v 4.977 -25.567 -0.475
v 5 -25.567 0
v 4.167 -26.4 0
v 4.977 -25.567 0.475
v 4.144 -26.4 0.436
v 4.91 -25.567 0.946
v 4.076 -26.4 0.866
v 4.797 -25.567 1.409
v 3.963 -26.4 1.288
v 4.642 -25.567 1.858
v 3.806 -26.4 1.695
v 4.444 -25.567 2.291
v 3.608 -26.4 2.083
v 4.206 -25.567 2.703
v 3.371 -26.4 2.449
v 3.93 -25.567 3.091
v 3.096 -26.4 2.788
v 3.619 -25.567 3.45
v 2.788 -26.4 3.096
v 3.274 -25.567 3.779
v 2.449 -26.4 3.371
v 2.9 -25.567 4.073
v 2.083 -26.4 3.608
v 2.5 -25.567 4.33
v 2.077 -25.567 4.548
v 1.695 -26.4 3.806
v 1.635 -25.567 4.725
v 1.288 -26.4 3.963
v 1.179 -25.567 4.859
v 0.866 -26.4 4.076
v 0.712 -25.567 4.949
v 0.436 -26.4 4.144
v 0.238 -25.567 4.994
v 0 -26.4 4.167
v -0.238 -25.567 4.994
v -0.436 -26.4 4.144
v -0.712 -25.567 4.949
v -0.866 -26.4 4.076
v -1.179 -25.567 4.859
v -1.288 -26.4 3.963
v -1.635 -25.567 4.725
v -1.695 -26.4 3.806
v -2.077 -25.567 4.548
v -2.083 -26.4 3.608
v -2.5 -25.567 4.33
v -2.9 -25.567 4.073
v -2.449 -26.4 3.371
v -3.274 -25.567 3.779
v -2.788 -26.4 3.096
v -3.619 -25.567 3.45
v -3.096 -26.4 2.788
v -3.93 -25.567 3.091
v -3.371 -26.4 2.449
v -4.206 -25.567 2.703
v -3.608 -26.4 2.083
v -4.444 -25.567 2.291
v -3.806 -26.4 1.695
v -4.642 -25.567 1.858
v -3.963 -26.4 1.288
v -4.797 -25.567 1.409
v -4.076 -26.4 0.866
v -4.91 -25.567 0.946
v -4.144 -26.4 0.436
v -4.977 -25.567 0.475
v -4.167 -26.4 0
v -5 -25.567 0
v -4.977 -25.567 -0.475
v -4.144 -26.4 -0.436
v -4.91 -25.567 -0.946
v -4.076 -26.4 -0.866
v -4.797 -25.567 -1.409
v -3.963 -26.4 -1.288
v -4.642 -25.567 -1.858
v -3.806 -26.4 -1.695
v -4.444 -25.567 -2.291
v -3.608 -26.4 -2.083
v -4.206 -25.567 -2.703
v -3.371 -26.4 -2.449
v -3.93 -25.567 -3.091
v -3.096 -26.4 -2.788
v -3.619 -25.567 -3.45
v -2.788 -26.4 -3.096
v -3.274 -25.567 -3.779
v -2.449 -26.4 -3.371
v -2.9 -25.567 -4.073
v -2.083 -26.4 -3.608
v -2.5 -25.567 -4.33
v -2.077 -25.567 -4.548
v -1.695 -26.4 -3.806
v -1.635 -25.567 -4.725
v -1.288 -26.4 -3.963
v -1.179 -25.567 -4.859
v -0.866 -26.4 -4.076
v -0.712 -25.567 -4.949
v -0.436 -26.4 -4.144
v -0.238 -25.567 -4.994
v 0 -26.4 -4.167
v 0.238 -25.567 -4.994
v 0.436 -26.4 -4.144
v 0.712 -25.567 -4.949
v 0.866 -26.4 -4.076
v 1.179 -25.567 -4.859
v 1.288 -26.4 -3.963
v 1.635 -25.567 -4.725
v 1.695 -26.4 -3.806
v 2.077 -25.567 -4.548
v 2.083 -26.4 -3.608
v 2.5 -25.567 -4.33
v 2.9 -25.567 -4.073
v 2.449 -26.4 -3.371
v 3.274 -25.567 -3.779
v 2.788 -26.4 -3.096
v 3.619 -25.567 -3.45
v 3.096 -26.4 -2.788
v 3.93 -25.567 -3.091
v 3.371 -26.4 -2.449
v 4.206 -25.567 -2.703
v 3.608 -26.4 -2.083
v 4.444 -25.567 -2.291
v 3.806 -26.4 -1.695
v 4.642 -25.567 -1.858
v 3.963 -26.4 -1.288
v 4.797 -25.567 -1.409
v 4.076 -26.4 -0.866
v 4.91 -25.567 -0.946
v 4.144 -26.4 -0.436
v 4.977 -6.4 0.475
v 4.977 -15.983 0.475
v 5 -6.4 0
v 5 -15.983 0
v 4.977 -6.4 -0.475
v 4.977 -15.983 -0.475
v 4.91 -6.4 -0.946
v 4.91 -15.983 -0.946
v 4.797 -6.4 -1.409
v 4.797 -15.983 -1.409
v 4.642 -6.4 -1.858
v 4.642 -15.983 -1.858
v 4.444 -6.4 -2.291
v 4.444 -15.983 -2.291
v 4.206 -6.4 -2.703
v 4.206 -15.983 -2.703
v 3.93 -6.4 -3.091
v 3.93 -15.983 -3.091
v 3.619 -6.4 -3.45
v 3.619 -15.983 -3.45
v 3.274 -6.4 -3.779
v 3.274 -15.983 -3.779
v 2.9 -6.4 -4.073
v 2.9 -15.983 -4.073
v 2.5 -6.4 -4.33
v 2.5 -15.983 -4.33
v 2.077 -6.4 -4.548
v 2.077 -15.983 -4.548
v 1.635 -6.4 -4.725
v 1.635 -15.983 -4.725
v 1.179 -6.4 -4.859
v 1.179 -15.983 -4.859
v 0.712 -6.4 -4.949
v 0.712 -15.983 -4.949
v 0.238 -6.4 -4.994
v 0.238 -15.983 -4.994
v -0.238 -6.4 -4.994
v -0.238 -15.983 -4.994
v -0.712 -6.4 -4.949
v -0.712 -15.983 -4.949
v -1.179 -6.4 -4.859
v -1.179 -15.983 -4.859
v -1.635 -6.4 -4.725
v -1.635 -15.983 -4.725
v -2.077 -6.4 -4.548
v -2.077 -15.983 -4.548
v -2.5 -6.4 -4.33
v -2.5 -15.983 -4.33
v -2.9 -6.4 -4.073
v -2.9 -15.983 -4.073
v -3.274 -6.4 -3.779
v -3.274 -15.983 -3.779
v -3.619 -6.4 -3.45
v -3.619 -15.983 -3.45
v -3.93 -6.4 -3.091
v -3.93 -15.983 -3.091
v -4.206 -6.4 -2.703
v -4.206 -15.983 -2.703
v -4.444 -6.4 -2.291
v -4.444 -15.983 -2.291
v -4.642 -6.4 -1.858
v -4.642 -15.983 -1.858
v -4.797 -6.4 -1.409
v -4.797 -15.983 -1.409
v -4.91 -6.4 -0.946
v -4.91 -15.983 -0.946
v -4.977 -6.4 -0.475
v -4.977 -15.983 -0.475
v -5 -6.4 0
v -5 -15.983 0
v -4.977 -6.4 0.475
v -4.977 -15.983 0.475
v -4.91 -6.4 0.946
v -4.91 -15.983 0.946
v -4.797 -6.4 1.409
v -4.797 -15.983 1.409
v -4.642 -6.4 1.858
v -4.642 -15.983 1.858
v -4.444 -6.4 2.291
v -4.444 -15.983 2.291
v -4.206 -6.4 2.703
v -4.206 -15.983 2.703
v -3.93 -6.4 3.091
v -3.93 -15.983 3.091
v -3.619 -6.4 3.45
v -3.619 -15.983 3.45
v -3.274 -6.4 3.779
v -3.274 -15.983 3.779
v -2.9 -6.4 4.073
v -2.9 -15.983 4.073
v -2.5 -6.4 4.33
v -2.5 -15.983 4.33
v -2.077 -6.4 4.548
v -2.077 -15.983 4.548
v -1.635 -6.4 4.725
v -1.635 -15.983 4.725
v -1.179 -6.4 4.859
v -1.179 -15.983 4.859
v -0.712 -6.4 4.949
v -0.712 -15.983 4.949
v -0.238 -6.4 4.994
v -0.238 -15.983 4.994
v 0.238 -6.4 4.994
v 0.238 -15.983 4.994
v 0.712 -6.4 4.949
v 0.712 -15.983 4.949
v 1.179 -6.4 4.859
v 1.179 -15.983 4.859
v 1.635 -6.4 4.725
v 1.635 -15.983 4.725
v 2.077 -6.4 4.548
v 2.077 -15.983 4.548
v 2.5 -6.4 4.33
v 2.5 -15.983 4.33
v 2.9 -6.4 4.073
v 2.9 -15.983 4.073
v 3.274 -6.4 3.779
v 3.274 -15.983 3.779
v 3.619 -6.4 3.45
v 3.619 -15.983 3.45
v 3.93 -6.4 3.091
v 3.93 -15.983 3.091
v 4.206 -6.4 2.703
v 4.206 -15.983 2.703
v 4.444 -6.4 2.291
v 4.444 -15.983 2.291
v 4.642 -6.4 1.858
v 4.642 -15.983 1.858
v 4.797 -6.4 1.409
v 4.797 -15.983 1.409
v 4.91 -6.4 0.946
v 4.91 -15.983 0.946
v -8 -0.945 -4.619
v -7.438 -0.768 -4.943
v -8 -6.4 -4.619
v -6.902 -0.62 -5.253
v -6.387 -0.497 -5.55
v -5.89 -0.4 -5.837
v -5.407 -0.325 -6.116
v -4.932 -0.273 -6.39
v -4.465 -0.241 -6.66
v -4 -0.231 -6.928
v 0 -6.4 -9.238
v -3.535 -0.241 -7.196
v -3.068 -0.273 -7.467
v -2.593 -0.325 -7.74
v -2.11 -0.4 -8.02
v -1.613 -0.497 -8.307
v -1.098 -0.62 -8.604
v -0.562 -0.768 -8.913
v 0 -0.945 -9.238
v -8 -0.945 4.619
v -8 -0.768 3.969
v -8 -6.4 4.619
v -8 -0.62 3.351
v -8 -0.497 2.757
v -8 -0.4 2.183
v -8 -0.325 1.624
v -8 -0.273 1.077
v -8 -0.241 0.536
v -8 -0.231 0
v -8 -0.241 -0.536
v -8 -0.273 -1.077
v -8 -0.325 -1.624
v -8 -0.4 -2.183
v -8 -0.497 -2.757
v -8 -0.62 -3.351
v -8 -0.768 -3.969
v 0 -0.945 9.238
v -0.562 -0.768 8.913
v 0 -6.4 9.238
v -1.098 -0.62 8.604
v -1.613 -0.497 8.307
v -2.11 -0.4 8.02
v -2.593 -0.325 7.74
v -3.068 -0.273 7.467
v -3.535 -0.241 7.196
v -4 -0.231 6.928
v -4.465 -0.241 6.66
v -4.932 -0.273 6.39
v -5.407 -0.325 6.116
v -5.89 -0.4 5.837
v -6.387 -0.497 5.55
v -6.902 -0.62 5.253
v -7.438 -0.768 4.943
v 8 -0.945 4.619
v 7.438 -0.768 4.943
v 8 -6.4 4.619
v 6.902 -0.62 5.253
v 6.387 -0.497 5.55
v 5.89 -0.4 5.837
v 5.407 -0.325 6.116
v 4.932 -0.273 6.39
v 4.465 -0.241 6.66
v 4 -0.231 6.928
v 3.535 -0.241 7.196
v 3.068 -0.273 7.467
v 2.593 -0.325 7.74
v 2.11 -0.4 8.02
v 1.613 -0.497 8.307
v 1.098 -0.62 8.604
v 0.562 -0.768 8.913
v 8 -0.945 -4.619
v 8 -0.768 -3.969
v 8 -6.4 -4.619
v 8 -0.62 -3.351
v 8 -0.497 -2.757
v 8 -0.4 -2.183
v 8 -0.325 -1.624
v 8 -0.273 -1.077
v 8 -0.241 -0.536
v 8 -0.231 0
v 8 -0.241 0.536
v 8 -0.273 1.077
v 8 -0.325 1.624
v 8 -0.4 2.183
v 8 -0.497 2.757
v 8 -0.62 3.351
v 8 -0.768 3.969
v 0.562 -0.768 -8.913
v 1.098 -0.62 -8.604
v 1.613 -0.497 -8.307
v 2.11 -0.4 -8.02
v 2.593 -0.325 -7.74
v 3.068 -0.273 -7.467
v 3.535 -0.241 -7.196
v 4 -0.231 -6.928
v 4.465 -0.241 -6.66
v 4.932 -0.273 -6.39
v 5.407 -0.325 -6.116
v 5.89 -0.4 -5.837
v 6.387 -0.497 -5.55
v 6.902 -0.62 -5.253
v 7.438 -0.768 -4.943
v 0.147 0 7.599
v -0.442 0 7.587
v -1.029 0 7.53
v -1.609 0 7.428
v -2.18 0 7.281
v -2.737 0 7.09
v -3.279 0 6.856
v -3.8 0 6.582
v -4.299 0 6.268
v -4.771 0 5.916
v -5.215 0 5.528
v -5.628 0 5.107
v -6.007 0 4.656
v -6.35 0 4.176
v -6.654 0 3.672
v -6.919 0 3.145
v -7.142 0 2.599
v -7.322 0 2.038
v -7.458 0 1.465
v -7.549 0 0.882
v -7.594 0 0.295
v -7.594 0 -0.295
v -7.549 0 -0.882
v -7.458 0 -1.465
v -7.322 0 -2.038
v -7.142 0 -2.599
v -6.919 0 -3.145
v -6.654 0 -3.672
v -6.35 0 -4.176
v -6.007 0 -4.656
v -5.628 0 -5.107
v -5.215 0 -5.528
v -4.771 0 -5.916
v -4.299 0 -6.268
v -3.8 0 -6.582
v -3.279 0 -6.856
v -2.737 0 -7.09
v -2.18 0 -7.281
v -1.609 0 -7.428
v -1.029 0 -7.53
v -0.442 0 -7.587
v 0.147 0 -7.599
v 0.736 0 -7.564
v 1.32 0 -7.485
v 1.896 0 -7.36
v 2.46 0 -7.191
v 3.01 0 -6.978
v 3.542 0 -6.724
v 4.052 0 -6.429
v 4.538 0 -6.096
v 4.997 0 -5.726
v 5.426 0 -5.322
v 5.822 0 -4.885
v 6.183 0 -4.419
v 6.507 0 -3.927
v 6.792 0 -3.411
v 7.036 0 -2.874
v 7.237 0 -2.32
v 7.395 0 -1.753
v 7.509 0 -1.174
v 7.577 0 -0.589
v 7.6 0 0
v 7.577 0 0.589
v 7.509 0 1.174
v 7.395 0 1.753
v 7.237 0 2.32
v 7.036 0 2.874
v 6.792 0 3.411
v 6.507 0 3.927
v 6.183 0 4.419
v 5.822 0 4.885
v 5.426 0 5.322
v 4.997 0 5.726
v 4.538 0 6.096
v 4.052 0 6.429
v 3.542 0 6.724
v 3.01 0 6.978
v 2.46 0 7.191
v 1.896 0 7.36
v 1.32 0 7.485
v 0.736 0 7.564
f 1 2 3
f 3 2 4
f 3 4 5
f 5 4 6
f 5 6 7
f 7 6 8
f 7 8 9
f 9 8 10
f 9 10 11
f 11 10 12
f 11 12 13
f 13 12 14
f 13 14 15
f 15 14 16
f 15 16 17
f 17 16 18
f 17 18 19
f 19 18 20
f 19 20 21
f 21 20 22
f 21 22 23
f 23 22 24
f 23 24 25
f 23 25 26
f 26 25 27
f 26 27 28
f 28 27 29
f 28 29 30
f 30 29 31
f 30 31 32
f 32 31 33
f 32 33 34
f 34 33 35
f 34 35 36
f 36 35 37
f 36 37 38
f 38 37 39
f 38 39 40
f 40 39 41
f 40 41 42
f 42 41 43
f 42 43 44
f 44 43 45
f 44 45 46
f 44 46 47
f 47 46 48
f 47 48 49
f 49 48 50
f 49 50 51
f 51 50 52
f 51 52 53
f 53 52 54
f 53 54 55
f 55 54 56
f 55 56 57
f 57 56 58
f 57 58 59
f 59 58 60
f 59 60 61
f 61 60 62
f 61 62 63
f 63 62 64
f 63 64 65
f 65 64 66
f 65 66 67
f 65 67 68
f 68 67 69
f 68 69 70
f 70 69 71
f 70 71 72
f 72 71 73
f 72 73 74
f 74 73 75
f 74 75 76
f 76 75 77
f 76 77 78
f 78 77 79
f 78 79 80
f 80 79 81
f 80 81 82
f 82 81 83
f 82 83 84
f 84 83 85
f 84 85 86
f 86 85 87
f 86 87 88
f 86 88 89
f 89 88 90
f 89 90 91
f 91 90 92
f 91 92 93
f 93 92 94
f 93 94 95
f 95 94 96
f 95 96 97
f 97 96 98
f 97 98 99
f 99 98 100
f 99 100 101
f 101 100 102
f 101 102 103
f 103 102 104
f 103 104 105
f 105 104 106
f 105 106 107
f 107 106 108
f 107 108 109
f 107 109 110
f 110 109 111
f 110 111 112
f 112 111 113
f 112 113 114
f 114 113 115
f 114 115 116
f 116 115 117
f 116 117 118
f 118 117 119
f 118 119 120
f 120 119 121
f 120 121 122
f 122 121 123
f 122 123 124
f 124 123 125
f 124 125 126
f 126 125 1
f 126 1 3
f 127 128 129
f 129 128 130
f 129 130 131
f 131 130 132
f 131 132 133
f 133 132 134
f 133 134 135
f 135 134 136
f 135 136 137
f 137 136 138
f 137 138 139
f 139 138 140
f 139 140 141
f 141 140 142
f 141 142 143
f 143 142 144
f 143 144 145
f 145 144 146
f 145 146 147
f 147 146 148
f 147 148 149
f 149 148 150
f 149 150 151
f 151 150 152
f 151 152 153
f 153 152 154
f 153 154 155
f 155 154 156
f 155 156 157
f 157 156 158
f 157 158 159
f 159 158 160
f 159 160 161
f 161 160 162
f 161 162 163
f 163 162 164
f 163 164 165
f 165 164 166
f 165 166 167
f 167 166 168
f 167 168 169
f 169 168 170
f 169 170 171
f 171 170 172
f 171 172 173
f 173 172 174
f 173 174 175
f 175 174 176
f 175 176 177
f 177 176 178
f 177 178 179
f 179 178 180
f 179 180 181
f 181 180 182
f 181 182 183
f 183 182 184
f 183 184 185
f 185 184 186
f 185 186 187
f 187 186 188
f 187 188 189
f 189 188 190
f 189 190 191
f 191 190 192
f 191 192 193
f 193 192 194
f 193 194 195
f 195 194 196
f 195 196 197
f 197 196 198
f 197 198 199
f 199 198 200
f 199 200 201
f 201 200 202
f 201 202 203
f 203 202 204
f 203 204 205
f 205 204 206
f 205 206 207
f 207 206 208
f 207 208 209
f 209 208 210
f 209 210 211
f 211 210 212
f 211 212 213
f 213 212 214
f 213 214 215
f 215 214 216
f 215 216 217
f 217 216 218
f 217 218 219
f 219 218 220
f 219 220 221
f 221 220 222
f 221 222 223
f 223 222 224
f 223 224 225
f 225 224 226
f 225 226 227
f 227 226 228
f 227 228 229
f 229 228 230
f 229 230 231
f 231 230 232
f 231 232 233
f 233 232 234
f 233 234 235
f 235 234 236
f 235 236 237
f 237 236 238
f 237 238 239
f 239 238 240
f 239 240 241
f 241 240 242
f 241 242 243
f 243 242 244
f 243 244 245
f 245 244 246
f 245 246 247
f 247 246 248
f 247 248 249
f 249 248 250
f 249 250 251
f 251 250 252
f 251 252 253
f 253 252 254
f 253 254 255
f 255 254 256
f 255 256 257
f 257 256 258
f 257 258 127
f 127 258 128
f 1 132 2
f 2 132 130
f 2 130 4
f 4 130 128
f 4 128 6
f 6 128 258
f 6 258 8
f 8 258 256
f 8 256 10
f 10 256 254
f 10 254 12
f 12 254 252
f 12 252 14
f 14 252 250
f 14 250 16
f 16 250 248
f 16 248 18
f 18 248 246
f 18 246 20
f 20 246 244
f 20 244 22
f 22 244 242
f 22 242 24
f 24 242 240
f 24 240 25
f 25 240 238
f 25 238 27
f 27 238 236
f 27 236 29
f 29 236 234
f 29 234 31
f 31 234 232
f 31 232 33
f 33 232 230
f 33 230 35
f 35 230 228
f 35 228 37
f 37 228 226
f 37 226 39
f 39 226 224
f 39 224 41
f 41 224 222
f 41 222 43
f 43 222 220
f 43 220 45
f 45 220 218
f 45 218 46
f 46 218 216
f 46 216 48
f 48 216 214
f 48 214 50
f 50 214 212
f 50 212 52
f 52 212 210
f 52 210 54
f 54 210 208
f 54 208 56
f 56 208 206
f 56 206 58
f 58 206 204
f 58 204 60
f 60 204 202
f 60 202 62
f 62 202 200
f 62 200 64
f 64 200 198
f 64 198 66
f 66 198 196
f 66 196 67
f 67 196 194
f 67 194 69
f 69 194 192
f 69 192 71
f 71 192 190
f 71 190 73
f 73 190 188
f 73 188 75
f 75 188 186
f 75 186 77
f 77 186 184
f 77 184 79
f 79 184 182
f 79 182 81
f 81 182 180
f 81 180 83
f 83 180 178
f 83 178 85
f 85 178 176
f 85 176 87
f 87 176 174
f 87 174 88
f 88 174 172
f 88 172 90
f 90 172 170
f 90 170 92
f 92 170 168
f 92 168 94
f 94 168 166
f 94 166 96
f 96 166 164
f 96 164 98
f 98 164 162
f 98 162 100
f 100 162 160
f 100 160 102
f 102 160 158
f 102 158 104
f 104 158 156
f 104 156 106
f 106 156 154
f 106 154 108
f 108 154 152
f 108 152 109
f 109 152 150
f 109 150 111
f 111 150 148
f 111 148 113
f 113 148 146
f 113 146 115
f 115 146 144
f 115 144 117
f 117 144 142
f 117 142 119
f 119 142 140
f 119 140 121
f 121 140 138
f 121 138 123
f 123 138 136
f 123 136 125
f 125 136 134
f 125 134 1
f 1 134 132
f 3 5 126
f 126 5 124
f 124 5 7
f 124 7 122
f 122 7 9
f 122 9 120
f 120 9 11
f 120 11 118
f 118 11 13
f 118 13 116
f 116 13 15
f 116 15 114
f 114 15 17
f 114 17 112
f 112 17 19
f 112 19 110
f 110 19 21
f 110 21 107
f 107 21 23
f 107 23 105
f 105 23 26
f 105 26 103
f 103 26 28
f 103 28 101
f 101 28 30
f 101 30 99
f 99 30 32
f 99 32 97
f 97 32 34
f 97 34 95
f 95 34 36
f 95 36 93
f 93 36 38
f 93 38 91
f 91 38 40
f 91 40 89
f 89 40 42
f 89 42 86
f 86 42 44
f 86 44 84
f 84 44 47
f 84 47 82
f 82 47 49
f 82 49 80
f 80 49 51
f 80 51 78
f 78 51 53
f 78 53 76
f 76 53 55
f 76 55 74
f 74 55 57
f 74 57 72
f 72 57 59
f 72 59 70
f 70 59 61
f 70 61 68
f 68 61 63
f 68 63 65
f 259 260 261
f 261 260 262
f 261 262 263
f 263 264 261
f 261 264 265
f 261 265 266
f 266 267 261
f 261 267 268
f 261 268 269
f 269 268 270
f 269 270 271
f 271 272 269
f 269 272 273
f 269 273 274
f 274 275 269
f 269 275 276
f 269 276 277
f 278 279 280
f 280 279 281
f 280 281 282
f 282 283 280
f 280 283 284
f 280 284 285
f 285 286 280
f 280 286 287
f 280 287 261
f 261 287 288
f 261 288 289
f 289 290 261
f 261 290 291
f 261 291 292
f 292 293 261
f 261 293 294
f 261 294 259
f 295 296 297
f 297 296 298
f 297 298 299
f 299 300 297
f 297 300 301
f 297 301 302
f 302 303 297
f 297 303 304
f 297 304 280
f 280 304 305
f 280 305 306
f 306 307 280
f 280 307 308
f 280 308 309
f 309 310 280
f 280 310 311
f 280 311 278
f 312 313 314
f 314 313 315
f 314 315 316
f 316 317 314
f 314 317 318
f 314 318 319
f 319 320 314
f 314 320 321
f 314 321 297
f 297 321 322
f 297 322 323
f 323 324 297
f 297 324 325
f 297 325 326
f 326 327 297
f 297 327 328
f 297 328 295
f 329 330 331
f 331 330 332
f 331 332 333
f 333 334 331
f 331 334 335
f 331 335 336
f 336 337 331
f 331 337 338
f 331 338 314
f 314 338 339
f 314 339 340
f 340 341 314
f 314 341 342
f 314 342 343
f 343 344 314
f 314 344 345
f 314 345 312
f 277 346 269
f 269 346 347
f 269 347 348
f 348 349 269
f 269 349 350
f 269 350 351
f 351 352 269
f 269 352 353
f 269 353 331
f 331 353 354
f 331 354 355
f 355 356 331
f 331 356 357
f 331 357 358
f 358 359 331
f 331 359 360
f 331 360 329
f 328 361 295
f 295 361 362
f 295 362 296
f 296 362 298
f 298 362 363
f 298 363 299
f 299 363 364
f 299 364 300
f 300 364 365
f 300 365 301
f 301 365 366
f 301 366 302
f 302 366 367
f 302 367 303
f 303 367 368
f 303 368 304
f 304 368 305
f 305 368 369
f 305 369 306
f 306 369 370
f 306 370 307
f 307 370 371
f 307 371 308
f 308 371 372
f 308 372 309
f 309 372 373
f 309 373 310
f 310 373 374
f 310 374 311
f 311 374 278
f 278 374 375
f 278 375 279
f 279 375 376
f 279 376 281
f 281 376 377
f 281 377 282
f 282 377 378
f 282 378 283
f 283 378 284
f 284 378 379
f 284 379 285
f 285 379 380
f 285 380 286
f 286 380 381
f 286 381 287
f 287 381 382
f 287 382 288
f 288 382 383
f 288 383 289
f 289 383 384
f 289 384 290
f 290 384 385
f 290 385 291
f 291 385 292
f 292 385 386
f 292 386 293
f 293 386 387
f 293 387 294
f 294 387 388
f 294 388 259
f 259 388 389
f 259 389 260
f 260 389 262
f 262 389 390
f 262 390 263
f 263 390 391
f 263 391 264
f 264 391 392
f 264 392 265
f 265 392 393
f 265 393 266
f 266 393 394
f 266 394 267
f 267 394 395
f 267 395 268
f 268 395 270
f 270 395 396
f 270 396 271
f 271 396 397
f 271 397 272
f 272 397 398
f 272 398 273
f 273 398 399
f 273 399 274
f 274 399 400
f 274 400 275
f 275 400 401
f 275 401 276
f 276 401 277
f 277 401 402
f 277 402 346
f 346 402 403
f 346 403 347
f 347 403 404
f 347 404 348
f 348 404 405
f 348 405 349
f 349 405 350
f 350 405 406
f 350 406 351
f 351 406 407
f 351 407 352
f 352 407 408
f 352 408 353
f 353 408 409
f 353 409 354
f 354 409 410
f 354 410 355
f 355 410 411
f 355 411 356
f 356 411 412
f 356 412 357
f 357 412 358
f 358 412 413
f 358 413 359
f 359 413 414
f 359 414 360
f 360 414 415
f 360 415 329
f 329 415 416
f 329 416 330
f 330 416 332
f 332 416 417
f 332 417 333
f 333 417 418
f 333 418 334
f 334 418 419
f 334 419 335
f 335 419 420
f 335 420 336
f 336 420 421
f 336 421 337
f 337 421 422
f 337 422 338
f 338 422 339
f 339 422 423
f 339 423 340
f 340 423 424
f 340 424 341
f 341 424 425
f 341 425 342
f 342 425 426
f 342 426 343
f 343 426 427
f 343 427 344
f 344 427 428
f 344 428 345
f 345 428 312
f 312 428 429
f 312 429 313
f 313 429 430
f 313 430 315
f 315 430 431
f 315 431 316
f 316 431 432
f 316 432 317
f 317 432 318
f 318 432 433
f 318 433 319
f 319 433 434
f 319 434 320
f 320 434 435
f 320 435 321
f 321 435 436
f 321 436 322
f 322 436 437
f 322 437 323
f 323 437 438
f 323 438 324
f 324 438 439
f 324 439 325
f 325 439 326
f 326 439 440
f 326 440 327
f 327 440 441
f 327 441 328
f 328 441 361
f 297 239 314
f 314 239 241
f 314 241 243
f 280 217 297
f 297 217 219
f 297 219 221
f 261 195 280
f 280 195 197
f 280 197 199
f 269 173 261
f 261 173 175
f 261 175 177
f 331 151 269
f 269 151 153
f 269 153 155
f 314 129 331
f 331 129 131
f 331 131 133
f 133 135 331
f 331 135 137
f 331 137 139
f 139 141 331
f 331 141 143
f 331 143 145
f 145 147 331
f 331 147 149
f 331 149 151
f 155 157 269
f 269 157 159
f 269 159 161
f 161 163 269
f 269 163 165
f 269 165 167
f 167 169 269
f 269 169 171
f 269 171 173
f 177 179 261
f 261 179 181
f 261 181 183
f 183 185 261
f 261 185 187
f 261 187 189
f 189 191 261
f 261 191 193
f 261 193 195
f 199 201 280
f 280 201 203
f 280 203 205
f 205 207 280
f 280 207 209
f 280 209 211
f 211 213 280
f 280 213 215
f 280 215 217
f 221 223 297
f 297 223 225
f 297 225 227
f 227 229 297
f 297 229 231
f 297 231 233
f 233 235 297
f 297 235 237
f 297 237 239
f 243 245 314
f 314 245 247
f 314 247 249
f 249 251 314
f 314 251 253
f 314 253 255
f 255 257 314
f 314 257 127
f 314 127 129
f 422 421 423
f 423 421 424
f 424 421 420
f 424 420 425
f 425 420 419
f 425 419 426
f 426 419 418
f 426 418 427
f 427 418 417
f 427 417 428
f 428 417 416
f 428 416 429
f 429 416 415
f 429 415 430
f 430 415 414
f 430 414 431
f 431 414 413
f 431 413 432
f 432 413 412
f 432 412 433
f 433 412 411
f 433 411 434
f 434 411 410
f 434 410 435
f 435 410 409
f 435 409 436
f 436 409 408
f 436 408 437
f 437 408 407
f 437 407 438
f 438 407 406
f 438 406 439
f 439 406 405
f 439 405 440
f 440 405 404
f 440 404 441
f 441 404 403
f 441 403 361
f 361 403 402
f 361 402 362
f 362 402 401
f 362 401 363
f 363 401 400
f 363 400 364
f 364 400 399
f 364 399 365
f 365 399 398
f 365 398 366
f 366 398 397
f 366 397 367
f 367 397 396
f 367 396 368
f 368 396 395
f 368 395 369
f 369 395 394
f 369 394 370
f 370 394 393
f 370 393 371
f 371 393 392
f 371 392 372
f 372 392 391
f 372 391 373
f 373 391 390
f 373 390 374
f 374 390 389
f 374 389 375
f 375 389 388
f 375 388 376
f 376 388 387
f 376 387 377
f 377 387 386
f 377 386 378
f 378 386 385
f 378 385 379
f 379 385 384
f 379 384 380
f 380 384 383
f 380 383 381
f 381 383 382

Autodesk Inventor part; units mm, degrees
ref_plane "YZ Plane" through (0, 0, 0) normal (1, 0, 0) x (0, 1, 0)
ref_plane "XZ Plane" through (0, 0, 0) normal (0, 1, 0) x (-1, 0, 0)
ref_plane "XY Plane" through (0, 0, 0) normal (0, 0, 1) x (1, 0, 0)
sketch "Sketch1" plane through (0, 0, 0) normal (0, 0, 1) x (1, 0, 0)
  line L0 (0, 0) -> (7.6, 0)
  line L1 (12, -2.5403) -> (12, -6.4)
  line L2 (12, -6.4) -> (5, -6.4)
  line L3 (5, -6.4) -> (5, -26.4)
  line L4 (5, -26.4) -> (0, -26.4)
  line L5 (0, -26.4) -> (0, 0)
  line L6 (7.6, 0) -> (12, -2.5403)
  dimension "d0" = 24
  dimension "d1" = 10
  dimension "d2" = 6.4
  dimension "d3" = 20
  dimension "d20" = 30
  dimension "d21" = 15.2
revolve "Вращение1" add sketch "Sketch1" angle 360 about axis through (0, -26.4, 0) along (0, 1, 0)
sketch "Sketch2" plane through (0, 0, 0) normal (0, 1, 0) x (1, 0, 0)
  line L0 (0, -9.2376) -> (-8, -4.6188)
  line L1 (-8, -4.6188) -> (-8, 4.6188)
  line L2 (-8, 4.6188) -> (0, 9.2376)
  line L3 (0, 9.2376) -> (8, 4.6188)
  line L4 (8, 4.6188) -> (8, -4.6188)
  line L5 (8, -4.6188) -> (0, -9.2376)
  circle A0 centre (0, 0) radius 12 projected
  point P0 (0, 0)
  point P1 (0, 0)
  dimension "d22" = 16
extrude "Выдавливание1" cut sketch "Sketch2" against normal blind 6.4
thread "Резьба1" size "M10x1.5" class "6g" standard "ISO Metric profile" length 18
chamfer "Фаска1" distance 0.8333 angle 45 1 edges at (-5, -26.4, 0)
equation "\"d22\" = S_"
equation "\"d23\" = k"
equation "\"d12\" = b"
equation "\"d14\" = 0.0833333 * d"
equation "\"d0\" = 1.5 * S_"
equation "\"d1\" = d1_"
equation "\"d2\" = k"
equation "\"d3\" = L"
equation "\"d21\" = 0.95 * S_"
equation "\"d1_\" = 10"
equation "\"S_\" = 16"
equation "\"k\" = 6.4"
equation "\"e\" = 17.6"
equation "\"L\" = 20"
equation "\"b\" = 18"
equation "\"Grip_Length\" = 2"
equation "\"d\" = 10"
properties part number "Болт M10-6g×20(S16) ГОСТ 7798-70" material "Сталь, мягкая"
